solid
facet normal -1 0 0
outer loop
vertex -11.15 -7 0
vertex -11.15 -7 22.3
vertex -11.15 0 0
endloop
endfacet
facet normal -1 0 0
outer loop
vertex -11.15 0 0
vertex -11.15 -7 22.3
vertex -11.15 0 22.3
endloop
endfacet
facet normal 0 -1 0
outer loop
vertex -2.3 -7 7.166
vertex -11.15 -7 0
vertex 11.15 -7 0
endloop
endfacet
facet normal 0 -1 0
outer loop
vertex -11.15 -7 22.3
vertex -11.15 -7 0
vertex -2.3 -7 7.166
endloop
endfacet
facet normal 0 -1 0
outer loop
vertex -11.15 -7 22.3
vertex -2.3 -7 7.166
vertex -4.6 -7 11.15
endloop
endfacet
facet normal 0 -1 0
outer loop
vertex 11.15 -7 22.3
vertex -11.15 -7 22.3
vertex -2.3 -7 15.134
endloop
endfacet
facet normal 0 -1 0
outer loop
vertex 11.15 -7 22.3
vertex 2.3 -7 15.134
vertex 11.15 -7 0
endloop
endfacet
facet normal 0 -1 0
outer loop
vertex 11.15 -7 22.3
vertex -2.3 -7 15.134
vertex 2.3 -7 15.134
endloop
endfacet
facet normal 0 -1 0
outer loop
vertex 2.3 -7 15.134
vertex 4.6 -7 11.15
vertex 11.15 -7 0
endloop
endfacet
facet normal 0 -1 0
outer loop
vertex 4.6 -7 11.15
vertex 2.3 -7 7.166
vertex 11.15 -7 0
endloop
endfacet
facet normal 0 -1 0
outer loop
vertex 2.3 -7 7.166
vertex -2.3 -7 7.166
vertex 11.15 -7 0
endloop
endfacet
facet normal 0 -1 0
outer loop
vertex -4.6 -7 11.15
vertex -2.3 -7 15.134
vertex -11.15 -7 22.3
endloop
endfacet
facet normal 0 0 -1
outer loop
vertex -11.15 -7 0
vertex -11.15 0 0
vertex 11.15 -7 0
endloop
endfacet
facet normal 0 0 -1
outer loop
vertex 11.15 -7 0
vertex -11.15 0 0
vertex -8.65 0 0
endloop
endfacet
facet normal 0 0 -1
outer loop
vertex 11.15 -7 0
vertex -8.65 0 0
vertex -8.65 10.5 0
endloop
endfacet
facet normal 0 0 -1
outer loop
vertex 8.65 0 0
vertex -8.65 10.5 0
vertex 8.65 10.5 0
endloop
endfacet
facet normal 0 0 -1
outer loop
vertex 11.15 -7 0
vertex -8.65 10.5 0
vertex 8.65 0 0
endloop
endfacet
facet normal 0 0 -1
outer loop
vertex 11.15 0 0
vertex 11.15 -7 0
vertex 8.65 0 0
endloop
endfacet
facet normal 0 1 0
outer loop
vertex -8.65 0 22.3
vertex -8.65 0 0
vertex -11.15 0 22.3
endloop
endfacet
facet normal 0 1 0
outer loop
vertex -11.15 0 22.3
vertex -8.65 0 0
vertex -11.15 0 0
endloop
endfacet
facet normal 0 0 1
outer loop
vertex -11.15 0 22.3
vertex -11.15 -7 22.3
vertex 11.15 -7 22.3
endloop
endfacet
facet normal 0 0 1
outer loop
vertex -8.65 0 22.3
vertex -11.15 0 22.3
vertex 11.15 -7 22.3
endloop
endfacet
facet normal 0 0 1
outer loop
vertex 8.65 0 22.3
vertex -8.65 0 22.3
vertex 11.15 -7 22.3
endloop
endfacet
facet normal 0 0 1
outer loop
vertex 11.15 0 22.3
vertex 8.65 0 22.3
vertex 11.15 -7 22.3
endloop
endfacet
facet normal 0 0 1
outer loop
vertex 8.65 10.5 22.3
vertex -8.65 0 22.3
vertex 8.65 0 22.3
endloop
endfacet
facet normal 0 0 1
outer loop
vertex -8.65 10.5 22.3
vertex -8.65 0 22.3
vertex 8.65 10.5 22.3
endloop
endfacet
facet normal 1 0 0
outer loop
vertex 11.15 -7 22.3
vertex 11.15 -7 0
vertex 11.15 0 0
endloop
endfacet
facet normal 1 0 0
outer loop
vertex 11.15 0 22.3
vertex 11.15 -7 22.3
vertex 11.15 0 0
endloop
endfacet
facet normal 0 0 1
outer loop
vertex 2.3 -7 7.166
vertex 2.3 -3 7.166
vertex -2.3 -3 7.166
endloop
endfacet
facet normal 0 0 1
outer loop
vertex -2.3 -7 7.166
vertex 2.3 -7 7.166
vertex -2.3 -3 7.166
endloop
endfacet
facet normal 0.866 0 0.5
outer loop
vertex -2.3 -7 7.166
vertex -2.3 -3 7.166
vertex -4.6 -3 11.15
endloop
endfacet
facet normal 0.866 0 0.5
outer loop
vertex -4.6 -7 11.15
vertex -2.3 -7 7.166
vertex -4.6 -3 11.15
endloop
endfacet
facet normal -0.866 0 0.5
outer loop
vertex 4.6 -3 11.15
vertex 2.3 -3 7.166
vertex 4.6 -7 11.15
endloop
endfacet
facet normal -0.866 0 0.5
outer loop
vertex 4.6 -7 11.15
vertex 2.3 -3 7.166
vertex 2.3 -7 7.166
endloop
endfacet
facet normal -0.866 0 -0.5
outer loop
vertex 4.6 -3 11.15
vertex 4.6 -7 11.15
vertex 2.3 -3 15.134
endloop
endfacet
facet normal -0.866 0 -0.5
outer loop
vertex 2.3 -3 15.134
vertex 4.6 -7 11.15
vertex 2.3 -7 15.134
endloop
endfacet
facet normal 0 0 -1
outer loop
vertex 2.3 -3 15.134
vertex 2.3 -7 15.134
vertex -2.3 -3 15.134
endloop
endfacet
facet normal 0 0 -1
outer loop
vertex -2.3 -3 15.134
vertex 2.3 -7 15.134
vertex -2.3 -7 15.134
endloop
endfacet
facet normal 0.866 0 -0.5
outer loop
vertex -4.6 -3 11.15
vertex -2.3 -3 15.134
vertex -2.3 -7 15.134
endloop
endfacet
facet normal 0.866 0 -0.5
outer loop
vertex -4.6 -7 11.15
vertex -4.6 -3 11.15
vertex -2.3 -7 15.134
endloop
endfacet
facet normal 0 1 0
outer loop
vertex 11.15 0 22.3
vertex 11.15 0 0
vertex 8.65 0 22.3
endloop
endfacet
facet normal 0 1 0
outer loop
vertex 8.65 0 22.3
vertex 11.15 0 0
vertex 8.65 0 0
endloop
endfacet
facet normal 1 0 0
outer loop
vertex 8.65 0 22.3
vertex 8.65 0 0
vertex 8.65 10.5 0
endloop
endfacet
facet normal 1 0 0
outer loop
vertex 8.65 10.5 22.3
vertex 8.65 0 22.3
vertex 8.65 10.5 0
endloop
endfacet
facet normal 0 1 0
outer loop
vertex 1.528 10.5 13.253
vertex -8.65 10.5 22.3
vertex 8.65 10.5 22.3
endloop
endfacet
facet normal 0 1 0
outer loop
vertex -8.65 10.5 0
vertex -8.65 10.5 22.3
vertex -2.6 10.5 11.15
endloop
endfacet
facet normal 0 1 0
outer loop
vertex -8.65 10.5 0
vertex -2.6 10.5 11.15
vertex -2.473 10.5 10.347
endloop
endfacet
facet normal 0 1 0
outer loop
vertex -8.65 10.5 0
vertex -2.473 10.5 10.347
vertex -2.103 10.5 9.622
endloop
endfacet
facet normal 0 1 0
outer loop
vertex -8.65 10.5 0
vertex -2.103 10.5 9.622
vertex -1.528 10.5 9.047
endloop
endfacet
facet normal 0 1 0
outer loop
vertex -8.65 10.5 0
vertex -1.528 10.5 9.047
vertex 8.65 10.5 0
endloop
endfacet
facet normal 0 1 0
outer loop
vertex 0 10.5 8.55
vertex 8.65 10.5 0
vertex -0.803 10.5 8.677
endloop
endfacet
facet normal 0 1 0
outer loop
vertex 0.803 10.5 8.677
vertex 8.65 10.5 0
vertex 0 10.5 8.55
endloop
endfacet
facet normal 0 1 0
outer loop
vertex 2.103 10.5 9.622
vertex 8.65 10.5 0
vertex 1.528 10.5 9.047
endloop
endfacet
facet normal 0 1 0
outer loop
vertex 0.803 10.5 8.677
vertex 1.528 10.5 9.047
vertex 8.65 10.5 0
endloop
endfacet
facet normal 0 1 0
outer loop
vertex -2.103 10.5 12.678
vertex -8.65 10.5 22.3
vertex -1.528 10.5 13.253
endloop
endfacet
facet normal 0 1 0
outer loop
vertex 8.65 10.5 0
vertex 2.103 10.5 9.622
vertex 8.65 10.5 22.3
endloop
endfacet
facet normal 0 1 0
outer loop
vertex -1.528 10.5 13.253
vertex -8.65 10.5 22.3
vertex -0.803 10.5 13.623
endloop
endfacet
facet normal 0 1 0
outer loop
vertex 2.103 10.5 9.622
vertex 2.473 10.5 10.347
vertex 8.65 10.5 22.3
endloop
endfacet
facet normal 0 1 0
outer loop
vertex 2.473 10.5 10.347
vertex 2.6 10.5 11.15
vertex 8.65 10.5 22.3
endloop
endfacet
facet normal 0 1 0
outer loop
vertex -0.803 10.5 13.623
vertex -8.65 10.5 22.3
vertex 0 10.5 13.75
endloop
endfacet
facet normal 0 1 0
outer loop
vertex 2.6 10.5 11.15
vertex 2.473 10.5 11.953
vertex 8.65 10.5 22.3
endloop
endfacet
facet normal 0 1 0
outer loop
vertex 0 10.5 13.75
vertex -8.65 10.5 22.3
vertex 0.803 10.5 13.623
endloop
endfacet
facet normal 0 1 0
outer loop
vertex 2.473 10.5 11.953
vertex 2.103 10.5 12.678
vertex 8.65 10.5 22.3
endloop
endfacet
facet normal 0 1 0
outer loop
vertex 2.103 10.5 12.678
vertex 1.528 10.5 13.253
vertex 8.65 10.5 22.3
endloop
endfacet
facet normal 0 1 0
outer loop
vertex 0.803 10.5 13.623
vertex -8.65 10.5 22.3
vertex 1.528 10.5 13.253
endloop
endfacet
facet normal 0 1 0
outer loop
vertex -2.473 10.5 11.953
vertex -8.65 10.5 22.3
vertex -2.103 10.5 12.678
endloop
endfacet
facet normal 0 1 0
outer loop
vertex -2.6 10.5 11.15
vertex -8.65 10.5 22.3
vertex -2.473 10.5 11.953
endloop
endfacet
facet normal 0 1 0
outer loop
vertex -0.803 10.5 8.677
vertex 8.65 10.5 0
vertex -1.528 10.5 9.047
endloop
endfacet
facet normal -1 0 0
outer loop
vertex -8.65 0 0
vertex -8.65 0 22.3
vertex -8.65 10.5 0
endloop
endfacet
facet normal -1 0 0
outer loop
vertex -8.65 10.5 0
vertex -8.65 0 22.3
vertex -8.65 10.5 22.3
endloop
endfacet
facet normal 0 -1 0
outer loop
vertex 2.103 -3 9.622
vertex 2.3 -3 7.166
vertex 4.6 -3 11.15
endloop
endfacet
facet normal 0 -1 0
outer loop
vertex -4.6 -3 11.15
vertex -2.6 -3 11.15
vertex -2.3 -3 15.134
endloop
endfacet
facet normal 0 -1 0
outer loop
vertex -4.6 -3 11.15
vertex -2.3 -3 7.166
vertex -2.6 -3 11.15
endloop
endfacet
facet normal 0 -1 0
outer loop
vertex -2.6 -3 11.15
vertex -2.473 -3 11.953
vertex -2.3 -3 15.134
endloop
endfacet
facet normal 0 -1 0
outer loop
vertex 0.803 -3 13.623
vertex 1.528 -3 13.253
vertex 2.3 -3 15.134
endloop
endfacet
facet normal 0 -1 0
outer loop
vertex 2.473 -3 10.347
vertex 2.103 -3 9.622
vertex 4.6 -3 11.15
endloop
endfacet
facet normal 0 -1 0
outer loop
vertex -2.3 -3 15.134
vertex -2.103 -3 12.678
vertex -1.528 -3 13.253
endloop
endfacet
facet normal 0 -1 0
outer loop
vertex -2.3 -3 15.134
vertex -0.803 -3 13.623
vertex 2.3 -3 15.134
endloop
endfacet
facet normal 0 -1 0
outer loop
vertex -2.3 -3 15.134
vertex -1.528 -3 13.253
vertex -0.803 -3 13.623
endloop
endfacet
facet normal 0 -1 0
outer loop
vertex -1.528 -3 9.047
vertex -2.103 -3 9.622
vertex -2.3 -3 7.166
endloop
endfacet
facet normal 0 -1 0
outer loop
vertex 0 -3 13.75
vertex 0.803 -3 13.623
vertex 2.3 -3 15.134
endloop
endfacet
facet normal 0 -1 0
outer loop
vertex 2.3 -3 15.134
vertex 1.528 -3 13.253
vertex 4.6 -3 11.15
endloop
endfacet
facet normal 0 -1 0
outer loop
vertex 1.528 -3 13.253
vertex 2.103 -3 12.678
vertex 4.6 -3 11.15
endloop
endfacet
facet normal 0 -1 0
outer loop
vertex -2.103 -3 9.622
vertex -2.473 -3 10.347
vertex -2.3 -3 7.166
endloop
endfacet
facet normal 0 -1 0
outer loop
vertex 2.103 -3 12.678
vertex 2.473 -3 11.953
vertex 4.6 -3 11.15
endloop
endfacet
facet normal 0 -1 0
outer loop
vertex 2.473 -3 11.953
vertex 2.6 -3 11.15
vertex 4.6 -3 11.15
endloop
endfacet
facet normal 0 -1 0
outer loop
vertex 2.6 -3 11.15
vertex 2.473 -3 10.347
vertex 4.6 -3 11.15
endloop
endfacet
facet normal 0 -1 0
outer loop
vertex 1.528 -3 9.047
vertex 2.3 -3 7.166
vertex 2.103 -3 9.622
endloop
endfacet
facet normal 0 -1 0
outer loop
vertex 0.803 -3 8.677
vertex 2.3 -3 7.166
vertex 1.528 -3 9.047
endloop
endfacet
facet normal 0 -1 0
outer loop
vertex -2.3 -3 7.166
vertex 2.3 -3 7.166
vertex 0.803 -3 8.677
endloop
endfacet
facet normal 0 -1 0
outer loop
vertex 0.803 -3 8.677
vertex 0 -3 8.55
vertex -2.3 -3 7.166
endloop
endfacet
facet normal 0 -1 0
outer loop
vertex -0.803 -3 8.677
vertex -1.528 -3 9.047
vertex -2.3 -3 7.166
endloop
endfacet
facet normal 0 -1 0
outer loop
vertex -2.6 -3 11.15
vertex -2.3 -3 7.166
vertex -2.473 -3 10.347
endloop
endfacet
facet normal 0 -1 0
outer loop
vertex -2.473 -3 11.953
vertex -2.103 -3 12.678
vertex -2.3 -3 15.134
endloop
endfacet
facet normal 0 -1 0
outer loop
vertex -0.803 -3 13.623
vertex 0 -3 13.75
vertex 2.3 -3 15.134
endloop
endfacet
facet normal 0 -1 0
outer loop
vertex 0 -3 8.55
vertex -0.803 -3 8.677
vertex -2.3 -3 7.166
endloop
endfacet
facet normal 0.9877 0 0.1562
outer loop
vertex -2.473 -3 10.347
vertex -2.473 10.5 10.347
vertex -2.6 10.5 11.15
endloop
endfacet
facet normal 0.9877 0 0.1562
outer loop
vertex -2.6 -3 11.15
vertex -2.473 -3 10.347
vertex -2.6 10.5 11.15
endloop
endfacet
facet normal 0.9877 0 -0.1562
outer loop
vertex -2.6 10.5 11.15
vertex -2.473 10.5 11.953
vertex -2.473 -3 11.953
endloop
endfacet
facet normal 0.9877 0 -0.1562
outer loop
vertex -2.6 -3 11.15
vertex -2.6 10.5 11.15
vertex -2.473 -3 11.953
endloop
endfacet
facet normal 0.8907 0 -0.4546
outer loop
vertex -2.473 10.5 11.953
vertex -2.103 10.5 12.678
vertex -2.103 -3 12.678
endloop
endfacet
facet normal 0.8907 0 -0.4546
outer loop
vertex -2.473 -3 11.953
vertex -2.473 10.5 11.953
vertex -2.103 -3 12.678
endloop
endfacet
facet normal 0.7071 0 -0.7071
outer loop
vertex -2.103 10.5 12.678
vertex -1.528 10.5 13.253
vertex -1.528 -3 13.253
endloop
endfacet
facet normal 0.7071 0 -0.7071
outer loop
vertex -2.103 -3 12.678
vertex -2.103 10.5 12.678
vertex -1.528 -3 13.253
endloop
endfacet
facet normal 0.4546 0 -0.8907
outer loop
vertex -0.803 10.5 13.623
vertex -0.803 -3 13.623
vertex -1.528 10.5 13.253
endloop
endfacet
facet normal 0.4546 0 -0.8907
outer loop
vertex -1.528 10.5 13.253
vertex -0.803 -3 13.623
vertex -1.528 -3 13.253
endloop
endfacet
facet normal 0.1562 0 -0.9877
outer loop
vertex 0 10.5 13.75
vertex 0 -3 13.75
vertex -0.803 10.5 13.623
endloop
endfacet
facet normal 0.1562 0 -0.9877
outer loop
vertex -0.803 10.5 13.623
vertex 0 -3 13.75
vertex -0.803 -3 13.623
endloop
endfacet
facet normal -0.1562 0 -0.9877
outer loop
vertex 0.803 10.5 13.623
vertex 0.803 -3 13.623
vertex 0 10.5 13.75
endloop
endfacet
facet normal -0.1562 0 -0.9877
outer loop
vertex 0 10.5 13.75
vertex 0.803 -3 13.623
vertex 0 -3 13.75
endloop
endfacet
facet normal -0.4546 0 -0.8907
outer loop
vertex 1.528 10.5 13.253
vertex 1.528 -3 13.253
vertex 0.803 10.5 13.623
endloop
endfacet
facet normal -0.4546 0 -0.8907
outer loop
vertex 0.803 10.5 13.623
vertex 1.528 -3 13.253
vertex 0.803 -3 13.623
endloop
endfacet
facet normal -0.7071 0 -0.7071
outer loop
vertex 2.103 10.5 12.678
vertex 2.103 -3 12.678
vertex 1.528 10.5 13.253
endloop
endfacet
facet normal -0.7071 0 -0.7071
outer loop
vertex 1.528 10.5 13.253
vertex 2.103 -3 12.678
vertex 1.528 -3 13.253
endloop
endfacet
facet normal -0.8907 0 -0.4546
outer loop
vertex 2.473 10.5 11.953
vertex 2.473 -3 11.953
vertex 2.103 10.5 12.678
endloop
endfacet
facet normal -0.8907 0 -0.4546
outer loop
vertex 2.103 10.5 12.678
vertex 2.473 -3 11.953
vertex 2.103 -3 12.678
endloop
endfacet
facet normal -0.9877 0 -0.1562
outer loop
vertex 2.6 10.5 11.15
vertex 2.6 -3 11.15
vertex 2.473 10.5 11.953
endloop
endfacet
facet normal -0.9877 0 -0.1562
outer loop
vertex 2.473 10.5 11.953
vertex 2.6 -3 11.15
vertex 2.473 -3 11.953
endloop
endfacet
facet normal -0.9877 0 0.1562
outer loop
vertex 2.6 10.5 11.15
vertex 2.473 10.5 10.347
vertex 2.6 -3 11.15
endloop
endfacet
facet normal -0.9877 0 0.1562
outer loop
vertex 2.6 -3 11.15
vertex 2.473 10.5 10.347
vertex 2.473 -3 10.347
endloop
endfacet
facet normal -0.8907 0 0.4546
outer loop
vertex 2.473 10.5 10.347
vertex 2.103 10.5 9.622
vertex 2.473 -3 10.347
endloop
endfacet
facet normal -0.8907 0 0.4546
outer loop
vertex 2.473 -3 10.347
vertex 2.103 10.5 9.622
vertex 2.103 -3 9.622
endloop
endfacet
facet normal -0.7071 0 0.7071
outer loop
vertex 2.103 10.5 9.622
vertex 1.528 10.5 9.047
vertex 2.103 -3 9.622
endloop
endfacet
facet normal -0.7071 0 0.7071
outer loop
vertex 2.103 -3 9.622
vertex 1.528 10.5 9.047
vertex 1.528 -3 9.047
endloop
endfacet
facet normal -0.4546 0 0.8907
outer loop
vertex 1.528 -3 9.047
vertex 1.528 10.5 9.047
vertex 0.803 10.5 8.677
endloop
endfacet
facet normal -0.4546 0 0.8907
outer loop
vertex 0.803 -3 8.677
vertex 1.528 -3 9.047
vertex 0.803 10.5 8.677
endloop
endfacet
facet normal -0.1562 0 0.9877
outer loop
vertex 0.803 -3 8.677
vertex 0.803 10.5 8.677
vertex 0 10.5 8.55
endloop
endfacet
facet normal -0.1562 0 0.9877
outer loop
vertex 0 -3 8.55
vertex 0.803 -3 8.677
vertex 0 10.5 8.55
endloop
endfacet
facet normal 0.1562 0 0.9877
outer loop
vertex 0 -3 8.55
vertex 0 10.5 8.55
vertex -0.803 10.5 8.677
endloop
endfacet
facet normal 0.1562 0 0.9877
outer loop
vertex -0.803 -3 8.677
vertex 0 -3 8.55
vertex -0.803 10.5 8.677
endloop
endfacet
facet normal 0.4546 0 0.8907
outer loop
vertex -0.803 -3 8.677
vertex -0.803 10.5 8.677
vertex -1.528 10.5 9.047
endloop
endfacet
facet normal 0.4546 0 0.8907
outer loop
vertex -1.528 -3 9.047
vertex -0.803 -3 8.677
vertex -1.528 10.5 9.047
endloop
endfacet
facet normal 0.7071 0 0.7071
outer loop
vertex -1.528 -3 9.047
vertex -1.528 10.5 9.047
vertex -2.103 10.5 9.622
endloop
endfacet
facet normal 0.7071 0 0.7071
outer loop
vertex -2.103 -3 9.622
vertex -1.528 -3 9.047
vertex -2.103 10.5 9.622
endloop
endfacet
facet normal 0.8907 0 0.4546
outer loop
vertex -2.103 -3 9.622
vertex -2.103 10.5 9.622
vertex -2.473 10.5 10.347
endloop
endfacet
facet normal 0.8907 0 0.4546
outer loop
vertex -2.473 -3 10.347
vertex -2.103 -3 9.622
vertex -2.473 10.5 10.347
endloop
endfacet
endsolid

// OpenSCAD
use <MCAD/nuts_and_bolts.scad>;

difference(){
translate([-17.3/2,0,0])
union(){
cube([17.3,10.5,17.3+2.5*2]);
translate([-2.5,-7,0])cube([17.3+2.5*2,7,17.3+2.5*2]);
}

translate([0,12,(17.3+2.5*2)/2])rotate([90,0,0])#cylinder(r=5.2/2,h = 20,$fn=20);
translate([0,-3,(17.3+2.5*2)/2])rotate([90,0,0])#nutHole(5);
}
